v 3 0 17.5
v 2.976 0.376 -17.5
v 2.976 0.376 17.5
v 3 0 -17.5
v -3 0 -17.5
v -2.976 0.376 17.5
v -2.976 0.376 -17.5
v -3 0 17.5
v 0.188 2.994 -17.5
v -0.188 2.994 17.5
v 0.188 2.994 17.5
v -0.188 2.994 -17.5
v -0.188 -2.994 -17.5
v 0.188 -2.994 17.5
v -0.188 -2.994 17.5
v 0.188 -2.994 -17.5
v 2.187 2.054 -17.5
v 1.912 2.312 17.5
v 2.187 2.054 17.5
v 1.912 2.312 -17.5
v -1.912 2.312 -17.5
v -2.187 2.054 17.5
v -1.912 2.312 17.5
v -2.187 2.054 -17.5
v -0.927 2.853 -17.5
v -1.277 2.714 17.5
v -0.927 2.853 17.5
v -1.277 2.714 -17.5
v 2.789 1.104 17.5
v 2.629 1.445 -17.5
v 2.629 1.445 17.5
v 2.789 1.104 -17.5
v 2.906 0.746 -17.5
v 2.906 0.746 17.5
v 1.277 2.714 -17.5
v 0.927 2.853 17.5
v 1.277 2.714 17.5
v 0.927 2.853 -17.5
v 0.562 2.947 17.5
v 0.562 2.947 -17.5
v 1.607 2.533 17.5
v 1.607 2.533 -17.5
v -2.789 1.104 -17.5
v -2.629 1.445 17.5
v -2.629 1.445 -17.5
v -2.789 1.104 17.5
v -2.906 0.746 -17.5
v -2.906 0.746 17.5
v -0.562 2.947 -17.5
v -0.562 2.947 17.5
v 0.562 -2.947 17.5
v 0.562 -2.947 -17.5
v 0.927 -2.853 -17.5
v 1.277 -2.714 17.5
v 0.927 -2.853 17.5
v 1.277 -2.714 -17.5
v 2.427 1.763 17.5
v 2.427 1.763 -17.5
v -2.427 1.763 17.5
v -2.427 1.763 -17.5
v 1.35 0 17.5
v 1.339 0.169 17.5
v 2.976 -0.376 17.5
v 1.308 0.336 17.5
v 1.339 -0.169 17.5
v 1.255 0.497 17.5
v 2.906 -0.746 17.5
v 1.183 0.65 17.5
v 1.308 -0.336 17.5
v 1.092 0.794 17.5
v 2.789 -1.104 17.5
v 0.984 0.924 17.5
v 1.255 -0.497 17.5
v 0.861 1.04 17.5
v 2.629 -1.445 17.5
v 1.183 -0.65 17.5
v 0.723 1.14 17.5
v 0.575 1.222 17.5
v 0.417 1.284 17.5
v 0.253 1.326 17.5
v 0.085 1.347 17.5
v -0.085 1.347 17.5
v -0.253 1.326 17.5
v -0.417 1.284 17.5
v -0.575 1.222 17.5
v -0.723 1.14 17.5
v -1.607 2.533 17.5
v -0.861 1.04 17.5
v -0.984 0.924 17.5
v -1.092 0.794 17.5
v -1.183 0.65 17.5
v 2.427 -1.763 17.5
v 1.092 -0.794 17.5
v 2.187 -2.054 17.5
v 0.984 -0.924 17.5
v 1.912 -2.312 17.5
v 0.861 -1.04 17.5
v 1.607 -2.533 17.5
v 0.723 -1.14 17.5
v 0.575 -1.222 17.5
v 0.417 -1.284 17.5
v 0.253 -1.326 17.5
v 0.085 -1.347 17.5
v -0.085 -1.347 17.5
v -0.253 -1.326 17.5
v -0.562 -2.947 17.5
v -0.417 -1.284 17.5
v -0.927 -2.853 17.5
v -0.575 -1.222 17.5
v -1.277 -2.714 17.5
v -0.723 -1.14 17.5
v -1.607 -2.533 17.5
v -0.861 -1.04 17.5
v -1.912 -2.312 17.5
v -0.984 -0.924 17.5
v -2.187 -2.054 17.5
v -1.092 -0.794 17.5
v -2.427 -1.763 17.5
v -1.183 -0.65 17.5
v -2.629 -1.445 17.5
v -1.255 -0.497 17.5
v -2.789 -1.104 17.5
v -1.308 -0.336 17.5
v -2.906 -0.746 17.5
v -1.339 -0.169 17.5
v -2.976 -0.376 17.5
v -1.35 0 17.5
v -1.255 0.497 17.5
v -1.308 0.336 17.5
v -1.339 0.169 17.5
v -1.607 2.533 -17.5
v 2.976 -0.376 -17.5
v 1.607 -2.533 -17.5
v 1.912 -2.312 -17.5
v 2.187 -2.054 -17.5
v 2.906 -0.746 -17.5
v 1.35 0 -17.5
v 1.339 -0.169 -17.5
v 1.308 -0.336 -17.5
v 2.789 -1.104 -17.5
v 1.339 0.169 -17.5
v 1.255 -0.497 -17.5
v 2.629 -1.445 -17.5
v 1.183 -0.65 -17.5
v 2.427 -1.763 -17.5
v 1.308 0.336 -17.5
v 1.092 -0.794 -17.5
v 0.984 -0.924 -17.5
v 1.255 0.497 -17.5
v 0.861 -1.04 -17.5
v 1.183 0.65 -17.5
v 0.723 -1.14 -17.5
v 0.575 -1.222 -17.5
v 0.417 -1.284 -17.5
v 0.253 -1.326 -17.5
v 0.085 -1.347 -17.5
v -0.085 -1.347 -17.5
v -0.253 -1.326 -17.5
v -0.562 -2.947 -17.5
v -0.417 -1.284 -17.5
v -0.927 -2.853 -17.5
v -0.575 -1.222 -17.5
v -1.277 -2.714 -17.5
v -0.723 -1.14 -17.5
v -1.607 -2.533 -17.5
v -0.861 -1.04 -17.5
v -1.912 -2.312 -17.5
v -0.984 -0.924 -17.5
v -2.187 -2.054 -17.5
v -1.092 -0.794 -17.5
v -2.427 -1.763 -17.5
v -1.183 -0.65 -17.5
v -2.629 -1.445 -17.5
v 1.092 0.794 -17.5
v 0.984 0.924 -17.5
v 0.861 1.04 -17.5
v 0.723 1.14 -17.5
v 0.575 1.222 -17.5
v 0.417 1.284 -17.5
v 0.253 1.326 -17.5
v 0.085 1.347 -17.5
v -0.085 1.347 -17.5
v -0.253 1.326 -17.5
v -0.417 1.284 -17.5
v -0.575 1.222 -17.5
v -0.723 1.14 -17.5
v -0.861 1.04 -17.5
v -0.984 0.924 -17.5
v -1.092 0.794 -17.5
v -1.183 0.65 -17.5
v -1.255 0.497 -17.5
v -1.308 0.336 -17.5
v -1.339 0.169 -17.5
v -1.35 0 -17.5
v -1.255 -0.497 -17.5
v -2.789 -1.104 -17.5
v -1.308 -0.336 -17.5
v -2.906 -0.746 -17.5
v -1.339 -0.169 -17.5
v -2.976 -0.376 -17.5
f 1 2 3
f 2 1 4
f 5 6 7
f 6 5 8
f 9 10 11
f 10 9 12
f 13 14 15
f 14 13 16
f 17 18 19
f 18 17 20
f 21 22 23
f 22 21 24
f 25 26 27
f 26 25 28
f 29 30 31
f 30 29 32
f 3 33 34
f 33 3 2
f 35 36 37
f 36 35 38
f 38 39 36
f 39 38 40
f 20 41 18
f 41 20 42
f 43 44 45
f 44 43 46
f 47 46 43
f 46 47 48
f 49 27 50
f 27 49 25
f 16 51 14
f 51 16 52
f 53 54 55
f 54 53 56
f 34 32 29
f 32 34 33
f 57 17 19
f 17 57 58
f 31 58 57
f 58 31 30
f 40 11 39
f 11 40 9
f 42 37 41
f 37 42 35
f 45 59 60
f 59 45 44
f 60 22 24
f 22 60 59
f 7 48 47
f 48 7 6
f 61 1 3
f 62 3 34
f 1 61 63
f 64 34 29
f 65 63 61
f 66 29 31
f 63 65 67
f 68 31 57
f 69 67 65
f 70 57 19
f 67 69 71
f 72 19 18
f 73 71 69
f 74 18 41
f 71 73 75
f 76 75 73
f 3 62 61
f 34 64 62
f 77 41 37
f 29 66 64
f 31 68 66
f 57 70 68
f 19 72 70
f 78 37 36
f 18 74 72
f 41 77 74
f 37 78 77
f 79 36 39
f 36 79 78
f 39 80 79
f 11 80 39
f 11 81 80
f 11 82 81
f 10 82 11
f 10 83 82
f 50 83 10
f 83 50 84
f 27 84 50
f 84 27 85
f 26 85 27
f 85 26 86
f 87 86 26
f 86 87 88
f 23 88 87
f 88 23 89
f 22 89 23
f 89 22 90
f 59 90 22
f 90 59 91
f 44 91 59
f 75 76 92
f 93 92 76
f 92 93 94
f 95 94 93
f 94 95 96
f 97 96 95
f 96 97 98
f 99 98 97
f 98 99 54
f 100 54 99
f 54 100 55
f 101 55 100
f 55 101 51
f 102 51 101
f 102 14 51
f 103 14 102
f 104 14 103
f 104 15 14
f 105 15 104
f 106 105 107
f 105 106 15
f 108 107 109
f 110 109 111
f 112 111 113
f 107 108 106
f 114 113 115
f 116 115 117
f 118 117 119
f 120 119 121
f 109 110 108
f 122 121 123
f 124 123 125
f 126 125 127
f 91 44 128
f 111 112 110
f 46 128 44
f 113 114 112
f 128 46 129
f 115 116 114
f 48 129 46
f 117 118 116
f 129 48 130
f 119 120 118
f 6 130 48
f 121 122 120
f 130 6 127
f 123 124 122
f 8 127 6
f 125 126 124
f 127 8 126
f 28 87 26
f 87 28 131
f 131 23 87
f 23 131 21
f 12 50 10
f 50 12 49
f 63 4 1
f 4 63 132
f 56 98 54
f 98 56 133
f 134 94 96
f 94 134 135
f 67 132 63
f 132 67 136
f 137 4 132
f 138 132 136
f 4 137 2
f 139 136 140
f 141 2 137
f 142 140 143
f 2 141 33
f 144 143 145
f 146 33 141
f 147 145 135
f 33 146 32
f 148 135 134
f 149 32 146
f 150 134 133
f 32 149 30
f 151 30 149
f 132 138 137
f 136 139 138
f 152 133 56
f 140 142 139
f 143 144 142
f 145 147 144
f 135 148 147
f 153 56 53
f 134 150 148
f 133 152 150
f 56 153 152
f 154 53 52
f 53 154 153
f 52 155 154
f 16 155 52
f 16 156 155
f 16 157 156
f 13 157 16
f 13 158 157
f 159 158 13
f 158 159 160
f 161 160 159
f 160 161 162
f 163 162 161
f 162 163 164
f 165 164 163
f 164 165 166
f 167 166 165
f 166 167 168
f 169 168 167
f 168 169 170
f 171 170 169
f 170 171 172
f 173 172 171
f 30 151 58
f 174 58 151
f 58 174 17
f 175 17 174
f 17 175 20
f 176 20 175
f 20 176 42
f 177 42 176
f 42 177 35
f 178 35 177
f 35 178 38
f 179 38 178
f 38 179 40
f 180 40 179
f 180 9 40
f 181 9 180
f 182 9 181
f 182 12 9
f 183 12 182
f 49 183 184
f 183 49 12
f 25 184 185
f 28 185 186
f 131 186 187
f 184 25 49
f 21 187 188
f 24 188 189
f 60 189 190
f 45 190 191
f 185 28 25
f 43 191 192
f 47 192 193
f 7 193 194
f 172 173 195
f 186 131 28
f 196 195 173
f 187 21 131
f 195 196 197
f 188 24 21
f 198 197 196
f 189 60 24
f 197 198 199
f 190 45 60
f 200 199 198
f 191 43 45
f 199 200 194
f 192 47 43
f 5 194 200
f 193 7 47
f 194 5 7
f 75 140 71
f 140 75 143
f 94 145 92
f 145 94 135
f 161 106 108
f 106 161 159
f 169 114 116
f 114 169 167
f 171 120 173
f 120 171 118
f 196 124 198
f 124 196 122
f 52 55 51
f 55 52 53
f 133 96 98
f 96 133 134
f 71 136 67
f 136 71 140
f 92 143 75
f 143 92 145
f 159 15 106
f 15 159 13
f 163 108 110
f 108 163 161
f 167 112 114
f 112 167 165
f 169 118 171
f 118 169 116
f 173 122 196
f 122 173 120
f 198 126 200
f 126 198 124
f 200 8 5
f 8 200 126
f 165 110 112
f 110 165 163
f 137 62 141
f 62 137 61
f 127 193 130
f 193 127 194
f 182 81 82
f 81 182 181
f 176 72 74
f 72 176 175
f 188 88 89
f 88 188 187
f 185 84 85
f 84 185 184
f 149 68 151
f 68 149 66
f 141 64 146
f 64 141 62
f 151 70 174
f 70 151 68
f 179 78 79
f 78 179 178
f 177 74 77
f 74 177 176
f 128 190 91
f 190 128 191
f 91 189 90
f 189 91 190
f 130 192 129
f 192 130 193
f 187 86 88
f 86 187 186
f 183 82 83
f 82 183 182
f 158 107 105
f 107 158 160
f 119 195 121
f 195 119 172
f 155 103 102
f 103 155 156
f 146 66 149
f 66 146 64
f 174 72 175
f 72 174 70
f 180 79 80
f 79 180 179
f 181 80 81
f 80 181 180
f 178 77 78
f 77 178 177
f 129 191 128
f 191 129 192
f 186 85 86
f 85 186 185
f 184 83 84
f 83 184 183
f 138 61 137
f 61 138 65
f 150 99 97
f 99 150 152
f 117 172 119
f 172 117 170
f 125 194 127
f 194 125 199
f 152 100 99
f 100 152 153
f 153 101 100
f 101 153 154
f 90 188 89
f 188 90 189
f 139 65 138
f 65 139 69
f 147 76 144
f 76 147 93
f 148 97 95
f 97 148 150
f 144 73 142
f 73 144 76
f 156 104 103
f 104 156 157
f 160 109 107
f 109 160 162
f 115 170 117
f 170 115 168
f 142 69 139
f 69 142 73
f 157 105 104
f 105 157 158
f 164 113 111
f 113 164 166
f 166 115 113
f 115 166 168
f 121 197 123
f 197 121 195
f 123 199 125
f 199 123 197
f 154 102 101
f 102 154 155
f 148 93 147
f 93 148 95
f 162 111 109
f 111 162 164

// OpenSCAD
$fn = 50;


difference() {
	union() {
		translate(v = [0, 0, -17.5000000000]) {
			cylinder(h = 35, r = 3.0000000000);
		}
	}
	union() {
		translate(v = [0, 0, -100.0000000000]) {
			cylinder(h = 200, r = 1.3500000000);
		}
	}
}
